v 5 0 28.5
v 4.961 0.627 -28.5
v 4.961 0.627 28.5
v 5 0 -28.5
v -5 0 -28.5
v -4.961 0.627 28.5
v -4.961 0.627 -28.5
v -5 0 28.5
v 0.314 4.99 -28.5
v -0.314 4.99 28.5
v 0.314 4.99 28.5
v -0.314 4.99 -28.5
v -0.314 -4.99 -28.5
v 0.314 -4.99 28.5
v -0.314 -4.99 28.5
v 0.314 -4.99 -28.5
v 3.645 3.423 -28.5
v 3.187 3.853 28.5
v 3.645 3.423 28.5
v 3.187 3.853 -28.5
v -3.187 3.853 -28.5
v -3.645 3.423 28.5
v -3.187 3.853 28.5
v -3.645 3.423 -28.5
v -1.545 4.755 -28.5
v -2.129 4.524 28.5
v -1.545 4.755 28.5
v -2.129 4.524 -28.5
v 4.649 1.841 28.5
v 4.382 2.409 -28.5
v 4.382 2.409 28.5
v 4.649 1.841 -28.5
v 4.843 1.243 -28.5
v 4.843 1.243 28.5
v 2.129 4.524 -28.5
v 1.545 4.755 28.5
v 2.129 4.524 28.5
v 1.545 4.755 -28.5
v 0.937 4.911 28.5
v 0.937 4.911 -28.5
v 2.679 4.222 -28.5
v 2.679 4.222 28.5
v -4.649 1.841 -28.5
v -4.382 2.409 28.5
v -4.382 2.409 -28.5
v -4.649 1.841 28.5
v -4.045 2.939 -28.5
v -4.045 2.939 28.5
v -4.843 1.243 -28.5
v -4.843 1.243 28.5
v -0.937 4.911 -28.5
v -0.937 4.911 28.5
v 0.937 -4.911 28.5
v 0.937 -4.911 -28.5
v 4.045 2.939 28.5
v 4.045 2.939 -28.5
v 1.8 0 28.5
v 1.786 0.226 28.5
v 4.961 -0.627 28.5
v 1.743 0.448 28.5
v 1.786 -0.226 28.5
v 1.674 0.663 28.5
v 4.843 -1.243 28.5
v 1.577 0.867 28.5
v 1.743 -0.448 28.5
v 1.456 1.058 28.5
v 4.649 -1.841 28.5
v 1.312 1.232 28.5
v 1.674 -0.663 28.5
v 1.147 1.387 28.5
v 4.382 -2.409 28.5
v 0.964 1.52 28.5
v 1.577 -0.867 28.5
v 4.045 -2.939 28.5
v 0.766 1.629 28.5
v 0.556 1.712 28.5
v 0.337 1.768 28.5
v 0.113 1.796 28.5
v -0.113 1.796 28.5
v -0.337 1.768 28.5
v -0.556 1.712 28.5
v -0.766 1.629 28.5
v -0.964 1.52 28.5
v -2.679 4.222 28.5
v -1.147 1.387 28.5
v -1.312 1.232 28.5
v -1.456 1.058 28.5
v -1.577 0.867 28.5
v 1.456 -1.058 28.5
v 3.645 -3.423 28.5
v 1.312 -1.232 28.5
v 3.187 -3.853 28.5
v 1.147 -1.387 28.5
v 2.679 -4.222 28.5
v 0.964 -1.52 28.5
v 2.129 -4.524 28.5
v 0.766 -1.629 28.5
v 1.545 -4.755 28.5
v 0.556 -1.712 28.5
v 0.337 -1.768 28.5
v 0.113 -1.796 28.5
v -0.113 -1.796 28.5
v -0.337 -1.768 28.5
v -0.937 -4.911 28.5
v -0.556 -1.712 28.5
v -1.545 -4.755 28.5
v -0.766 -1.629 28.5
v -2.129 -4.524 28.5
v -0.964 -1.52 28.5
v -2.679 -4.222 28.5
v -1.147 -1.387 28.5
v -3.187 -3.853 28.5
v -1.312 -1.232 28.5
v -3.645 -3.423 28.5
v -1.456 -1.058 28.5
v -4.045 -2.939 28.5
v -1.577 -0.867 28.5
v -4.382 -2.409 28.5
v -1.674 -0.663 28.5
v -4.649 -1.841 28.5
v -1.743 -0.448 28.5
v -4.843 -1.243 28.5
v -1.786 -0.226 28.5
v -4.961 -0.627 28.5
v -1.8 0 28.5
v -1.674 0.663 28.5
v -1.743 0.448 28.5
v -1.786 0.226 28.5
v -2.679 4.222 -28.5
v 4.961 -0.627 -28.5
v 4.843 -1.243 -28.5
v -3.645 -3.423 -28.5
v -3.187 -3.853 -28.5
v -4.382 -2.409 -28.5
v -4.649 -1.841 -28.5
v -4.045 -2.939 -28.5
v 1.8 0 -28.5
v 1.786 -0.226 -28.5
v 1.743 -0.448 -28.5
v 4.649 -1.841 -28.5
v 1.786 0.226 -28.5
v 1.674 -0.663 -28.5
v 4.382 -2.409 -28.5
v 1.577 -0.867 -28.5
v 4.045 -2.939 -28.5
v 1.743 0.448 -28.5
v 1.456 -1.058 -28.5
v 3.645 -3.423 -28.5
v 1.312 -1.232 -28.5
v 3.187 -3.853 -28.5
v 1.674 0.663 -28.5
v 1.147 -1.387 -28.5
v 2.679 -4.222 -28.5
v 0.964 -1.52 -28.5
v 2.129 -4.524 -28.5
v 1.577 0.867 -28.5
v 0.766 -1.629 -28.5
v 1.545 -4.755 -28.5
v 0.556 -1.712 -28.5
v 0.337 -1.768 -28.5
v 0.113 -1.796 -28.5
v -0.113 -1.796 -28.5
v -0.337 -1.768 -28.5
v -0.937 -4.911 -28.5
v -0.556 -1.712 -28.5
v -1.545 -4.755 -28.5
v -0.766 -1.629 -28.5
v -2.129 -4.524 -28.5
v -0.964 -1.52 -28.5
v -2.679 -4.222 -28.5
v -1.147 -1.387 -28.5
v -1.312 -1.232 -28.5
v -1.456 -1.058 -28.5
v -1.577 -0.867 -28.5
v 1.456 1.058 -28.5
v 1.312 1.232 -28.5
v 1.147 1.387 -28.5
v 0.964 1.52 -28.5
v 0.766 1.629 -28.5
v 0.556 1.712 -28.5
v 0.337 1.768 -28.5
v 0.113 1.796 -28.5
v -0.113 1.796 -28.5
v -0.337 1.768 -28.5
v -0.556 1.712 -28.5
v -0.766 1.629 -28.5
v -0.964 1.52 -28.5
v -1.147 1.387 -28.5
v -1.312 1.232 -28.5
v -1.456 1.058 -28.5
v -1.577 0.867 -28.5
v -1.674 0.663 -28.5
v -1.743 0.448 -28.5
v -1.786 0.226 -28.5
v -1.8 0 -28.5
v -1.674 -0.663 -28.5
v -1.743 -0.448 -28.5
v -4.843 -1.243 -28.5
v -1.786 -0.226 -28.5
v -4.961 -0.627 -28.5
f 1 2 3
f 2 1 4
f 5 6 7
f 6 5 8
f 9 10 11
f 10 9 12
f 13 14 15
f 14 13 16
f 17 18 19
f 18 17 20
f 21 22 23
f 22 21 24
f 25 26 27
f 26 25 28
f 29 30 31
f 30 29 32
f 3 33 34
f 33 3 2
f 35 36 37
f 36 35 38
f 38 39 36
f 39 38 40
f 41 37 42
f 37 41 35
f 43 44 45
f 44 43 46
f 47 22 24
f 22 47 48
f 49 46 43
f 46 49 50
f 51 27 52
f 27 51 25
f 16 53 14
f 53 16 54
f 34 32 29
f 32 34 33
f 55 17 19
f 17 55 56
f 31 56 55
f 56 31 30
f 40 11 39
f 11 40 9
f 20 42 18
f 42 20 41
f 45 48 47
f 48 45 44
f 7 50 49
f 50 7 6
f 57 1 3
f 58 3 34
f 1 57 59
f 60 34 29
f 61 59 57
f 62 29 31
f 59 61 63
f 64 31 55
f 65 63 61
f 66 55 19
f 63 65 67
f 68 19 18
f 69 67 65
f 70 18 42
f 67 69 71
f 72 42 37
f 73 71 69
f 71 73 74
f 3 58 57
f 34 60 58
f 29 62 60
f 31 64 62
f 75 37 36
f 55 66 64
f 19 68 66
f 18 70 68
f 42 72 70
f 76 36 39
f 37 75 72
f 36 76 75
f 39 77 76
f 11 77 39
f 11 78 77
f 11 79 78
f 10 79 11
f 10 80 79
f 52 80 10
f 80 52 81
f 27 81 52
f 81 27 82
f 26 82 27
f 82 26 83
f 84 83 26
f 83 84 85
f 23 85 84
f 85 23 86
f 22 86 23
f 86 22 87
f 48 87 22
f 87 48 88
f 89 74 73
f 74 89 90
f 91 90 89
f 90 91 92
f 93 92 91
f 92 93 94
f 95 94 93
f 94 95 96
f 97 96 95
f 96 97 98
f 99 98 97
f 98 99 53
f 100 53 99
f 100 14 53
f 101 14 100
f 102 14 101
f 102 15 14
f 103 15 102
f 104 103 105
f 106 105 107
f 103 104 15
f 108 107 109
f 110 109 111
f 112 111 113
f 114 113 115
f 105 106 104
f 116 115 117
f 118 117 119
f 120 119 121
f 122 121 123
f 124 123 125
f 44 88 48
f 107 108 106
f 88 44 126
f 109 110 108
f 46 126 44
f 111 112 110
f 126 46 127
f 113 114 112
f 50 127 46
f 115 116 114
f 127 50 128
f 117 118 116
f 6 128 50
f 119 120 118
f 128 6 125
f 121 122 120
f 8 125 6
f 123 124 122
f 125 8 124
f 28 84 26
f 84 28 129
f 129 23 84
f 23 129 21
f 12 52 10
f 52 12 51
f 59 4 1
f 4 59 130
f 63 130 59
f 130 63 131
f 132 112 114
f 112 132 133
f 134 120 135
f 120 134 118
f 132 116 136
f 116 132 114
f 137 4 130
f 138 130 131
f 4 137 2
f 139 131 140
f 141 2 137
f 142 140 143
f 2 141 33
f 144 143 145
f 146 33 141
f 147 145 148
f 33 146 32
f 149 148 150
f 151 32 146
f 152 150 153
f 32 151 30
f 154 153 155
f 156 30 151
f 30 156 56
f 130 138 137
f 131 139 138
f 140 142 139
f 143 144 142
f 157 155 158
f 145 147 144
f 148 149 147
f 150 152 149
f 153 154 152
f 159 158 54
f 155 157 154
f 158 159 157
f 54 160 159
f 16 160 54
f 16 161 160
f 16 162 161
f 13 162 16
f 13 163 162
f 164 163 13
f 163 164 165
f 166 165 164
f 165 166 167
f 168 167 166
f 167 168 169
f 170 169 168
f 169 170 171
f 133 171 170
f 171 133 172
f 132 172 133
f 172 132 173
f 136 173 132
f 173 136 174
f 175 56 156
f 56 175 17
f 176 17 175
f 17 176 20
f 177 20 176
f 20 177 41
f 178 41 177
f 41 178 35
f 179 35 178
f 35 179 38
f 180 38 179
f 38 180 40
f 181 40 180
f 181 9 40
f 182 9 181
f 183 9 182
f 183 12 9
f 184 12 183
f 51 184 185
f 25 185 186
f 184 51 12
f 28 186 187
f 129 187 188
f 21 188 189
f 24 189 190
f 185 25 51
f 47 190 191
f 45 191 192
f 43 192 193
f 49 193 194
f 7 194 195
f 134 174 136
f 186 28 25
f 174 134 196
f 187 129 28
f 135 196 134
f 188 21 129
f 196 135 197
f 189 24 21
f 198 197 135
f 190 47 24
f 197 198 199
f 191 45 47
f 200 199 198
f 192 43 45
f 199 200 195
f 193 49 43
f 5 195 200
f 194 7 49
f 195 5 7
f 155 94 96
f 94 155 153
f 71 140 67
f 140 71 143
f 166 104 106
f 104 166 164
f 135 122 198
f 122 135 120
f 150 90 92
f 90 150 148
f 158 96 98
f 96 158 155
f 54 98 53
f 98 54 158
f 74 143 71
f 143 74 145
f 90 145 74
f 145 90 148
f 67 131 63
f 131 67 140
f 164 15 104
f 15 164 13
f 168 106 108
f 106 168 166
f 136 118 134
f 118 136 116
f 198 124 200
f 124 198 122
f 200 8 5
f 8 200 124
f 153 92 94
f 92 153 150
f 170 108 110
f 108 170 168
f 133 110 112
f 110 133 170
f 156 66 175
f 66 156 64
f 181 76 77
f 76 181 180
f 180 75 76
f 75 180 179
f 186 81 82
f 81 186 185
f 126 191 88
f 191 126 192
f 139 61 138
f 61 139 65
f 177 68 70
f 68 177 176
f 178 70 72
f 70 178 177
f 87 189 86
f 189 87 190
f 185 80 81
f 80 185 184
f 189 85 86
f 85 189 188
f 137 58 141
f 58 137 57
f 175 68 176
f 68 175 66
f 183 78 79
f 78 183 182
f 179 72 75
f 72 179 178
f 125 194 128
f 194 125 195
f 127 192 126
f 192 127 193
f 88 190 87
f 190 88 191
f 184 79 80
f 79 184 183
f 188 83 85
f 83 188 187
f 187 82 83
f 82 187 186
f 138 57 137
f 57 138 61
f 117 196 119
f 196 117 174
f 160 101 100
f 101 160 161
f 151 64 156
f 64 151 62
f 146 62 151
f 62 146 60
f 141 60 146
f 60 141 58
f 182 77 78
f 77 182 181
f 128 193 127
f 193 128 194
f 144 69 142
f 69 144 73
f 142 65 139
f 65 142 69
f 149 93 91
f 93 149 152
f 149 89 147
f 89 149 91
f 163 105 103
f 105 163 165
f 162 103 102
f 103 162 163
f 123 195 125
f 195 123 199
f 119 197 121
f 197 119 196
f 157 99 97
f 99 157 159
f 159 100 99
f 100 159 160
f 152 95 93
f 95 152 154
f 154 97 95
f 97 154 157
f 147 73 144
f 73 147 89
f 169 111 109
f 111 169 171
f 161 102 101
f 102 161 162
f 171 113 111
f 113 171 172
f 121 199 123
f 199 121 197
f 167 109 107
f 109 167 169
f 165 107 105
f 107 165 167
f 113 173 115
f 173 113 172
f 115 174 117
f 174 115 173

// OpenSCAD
$fn = 50;


difference() {
	union() {
		translate(v = [0, 0, -28.5000000000]) {
			cylinder(h = 57, r = 5.0000000000);
		}
	}
	union() {
		translate(v = [0, 0, -100.0000000000]) {
			cylinder(h = 200, r = 1.8000000000);
		}
	}
}
